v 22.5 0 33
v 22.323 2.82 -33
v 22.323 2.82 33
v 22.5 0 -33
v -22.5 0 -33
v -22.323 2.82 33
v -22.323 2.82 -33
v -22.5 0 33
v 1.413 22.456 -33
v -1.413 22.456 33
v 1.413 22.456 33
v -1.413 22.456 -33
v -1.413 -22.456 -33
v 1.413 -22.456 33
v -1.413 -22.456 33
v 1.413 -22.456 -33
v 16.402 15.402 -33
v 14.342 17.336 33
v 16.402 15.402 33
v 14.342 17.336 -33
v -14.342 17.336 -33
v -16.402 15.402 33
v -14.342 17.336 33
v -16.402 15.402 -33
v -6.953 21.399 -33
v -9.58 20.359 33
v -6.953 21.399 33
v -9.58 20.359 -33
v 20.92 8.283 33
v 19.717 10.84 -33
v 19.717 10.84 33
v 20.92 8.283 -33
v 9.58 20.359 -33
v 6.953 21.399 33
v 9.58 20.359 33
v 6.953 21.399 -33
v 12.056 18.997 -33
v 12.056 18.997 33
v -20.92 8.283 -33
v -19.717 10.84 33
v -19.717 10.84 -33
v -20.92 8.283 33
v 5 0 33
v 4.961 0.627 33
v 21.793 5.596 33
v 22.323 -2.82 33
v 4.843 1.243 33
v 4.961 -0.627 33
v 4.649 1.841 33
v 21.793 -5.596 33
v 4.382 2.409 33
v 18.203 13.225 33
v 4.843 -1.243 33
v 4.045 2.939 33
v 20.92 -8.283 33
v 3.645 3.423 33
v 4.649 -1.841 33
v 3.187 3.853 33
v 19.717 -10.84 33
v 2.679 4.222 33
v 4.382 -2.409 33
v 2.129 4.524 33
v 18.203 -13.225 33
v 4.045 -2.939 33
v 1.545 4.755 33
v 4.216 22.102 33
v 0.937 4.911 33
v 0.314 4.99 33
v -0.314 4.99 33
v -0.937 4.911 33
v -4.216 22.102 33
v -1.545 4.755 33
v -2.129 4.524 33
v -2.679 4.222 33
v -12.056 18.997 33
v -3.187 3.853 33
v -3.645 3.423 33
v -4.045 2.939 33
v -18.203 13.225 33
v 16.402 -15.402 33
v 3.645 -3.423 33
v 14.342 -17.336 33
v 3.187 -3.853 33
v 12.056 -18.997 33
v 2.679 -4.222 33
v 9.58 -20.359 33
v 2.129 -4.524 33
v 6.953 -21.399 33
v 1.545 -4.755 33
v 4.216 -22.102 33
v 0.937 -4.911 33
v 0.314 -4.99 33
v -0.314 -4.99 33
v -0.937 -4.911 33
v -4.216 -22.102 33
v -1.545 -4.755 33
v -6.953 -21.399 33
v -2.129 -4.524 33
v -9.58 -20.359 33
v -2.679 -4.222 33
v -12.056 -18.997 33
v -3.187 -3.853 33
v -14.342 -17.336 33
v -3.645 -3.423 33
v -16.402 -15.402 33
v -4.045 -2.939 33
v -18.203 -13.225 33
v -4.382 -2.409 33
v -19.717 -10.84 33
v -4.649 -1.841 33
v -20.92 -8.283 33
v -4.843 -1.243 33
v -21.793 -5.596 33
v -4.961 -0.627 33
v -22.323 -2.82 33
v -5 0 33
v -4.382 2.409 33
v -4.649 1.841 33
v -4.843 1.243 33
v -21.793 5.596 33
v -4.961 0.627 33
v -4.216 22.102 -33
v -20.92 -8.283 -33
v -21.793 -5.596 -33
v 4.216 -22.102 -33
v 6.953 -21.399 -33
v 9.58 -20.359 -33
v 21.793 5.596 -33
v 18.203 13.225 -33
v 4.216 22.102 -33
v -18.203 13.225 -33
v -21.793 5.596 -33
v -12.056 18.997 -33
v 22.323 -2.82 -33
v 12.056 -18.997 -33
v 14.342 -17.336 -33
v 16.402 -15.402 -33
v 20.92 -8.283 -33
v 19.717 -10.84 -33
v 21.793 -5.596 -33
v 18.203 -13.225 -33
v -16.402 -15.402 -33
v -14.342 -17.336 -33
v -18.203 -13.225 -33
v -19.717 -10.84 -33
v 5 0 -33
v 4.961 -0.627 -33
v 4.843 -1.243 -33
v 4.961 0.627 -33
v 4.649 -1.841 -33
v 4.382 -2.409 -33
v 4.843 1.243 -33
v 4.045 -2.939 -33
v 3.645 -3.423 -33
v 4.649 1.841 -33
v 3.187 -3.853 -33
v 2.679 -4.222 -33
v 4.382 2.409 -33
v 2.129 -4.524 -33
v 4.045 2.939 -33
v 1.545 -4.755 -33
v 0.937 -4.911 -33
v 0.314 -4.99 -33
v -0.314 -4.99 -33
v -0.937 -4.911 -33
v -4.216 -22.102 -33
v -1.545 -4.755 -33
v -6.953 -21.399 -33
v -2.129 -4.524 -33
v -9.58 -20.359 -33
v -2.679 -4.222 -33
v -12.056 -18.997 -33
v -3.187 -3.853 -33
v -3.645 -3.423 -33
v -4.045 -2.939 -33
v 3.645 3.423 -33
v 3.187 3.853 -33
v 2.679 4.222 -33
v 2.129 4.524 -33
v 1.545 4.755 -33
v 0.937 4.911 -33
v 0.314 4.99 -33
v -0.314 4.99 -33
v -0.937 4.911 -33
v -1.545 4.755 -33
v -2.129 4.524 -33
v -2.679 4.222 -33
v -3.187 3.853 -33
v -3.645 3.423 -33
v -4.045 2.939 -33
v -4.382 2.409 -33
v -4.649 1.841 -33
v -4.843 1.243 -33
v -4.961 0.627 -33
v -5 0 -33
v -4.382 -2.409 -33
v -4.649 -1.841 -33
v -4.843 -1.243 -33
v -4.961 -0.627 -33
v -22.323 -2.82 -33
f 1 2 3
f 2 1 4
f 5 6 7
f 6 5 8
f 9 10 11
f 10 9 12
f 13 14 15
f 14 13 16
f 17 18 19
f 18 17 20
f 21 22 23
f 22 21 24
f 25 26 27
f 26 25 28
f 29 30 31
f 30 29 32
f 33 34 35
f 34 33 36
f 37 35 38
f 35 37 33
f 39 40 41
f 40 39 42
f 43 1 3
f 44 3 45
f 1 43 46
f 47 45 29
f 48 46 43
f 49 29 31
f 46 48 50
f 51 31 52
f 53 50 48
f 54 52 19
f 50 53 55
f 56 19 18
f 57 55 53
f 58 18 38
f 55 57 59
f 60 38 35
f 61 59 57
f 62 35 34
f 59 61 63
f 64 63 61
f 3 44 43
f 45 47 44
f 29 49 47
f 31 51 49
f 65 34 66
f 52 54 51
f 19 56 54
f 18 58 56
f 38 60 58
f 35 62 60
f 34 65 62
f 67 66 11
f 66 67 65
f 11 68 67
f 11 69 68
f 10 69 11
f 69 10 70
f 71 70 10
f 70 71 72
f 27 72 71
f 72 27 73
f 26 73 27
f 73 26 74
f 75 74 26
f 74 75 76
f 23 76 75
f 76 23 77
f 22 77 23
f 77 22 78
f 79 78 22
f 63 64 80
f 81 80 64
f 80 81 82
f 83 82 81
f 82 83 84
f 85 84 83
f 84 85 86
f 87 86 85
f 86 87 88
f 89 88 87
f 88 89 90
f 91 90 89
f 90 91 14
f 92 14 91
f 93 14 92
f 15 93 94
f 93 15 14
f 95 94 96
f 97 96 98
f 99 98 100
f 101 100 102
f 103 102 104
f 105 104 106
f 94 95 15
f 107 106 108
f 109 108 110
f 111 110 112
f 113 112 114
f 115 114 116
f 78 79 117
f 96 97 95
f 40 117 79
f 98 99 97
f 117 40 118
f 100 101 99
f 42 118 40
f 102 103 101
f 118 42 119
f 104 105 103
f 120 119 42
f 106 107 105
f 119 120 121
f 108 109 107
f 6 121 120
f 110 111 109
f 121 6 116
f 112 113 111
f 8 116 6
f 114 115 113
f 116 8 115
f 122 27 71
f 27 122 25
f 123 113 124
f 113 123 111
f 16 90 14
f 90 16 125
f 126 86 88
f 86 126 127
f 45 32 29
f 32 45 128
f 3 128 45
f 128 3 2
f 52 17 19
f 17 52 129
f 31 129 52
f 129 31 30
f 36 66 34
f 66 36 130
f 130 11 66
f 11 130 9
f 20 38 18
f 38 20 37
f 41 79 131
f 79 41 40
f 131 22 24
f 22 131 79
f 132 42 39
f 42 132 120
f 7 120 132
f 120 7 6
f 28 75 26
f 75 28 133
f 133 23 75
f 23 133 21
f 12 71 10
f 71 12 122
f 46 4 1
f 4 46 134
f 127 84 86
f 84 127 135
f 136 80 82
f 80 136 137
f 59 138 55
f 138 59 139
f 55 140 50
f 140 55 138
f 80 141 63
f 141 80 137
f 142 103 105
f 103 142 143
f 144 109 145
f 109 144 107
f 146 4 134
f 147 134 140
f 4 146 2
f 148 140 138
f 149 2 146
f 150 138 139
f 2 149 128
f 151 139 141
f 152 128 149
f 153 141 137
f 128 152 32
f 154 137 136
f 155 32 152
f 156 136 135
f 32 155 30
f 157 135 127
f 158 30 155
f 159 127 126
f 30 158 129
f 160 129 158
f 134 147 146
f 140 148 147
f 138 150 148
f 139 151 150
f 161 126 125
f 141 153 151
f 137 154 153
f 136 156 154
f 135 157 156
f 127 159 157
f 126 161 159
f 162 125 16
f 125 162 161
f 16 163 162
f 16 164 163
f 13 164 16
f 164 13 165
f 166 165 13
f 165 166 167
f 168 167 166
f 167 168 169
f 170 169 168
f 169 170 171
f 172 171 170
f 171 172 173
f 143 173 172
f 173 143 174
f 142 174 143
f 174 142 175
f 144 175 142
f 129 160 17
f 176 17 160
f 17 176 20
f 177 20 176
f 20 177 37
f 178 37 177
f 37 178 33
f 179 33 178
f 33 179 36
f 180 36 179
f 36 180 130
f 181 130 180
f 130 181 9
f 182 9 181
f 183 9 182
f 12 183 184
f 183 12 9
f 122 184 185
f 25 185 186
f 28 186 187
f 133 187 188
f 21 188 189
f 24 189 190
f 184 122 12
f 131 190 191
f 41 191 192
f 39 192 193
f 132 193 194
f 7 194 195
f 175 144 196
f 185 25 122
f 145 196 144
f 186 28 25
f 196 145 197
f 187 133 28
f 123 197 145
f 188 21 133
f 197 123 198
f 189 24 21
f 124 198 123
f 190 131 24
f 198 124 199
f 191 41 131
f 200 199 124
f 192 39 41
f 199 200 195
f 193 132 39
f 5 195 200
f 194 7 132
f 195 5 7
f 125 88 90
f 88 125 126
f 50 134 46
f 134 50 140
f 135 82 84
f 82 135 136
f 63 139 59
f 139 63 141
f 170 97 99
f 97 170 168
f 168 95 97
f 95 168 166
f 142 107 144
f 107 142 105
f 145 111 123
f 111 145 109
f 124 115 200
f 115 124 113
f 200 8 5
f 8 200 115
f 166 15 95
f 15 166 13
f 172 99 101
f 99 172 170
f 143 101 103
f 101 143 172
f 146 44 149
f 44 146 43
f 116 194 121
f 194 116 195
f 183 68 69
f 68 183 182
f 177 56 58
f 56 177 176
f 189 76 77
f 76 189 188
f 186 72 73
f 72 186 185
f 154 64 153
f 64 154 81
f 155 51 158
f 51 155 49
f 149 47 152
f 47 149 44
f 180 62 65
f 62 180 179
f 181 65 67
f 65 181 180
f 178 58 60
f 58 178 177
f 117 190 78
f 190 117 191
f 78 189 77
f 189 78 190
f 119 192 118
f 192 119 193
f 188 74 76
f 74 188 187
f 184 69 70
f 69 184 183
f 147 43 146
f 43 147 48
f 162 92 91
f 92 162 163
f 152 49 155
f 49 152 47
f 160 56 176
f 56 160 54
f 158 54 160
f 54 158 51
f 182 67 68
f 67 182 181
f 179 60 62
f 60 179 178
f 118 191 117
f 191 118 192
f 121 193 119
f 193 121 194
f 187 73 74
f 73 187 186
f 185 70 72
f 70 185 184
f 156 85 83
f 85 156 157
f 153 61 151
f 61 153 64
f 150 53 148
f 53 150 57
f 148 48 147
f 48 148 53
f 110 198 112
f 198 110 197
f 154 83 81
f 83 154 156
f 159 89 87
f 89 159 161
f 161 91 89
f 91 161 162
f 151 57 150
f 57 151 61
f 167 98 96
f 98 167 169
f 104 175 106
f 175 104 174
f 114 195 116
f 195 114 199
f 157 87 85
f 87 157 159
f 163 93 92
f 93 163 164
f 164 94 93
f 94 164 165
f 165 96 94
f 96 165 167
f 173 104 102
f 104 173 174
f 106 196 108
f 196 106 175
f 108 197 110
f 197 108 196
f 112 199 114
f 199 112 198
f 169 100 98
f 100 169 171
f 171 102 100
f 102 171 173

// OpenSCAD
$fn = 50;


difference() {
	union() {
		translate(v = [0, 0, -33.0000000000]) {
			cylinder(h = 66, r = 22.5000000000);
		}
	}
	union() {
		translate(v = [0, 0, -100.0000000000]) {
			cylinder(h = 200, r = 5);
		}
	}
}
